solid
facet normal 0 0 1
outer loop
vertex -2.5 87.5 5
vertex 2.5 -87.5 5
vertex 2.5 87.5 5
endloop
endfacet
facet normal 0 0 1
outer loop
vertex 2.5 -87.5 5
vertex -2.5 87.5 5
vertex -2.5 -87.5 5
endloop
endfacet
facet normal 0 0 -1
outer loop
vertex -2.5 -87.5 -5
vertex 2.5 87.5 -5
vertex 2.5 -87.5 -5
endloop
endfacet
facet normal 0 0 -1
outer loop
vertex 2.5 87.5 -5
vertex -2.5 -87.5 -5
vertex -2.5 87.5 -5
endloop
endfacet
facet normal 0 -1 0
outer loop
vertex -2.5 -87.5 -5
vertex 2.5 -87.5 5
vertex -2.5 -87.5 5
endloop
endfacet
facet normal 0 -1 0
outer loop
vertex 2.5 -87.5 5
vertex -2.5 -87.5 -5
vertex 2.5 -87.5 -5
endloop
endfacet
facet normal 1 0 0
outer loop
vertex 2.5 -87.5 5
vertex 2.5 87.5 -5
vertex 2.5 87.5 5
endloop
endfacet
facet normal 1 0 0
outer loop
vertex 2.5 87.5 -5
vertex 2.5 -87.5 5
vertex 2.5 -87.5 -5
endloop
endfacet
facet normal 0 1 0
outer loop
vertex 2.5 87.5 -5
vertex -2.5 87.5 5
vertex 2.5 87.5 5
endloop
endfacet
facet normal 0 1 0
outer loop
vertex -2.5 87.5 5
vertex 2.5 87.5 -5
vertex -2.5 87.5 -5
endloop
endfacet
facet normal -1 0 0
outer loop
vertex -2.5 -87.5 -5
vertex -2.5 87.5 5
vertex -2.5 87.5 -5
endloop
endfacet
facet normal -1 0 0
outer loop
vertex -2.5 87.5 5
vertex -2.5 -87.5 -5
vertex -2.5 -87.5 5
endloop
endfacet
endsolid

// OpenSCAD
/////////////////////////////////////////////////////////////////////////////////
// Adapter for drilling machine in the embedded lab.
//
// Author:              Maximilian Stiefel
// Last modification:   07.06.2017
/////////////////////////////////////////////////////////////////////////////////

/////////////////////////////////////////////////////////////////////////////////
// Vars
/////////////////////////////////////////////////////////////////////////////////
crossbar_depth = 175;
crossbar_height = 10;
crossbar_width = 5;

/////////////////////////////////////////////////////////////////////////////////
// Action
/////////////////////////////////////////////////////////////////////////////////
cube([crossbar_width, crossbar_depth, crossbar_height], center = true);
